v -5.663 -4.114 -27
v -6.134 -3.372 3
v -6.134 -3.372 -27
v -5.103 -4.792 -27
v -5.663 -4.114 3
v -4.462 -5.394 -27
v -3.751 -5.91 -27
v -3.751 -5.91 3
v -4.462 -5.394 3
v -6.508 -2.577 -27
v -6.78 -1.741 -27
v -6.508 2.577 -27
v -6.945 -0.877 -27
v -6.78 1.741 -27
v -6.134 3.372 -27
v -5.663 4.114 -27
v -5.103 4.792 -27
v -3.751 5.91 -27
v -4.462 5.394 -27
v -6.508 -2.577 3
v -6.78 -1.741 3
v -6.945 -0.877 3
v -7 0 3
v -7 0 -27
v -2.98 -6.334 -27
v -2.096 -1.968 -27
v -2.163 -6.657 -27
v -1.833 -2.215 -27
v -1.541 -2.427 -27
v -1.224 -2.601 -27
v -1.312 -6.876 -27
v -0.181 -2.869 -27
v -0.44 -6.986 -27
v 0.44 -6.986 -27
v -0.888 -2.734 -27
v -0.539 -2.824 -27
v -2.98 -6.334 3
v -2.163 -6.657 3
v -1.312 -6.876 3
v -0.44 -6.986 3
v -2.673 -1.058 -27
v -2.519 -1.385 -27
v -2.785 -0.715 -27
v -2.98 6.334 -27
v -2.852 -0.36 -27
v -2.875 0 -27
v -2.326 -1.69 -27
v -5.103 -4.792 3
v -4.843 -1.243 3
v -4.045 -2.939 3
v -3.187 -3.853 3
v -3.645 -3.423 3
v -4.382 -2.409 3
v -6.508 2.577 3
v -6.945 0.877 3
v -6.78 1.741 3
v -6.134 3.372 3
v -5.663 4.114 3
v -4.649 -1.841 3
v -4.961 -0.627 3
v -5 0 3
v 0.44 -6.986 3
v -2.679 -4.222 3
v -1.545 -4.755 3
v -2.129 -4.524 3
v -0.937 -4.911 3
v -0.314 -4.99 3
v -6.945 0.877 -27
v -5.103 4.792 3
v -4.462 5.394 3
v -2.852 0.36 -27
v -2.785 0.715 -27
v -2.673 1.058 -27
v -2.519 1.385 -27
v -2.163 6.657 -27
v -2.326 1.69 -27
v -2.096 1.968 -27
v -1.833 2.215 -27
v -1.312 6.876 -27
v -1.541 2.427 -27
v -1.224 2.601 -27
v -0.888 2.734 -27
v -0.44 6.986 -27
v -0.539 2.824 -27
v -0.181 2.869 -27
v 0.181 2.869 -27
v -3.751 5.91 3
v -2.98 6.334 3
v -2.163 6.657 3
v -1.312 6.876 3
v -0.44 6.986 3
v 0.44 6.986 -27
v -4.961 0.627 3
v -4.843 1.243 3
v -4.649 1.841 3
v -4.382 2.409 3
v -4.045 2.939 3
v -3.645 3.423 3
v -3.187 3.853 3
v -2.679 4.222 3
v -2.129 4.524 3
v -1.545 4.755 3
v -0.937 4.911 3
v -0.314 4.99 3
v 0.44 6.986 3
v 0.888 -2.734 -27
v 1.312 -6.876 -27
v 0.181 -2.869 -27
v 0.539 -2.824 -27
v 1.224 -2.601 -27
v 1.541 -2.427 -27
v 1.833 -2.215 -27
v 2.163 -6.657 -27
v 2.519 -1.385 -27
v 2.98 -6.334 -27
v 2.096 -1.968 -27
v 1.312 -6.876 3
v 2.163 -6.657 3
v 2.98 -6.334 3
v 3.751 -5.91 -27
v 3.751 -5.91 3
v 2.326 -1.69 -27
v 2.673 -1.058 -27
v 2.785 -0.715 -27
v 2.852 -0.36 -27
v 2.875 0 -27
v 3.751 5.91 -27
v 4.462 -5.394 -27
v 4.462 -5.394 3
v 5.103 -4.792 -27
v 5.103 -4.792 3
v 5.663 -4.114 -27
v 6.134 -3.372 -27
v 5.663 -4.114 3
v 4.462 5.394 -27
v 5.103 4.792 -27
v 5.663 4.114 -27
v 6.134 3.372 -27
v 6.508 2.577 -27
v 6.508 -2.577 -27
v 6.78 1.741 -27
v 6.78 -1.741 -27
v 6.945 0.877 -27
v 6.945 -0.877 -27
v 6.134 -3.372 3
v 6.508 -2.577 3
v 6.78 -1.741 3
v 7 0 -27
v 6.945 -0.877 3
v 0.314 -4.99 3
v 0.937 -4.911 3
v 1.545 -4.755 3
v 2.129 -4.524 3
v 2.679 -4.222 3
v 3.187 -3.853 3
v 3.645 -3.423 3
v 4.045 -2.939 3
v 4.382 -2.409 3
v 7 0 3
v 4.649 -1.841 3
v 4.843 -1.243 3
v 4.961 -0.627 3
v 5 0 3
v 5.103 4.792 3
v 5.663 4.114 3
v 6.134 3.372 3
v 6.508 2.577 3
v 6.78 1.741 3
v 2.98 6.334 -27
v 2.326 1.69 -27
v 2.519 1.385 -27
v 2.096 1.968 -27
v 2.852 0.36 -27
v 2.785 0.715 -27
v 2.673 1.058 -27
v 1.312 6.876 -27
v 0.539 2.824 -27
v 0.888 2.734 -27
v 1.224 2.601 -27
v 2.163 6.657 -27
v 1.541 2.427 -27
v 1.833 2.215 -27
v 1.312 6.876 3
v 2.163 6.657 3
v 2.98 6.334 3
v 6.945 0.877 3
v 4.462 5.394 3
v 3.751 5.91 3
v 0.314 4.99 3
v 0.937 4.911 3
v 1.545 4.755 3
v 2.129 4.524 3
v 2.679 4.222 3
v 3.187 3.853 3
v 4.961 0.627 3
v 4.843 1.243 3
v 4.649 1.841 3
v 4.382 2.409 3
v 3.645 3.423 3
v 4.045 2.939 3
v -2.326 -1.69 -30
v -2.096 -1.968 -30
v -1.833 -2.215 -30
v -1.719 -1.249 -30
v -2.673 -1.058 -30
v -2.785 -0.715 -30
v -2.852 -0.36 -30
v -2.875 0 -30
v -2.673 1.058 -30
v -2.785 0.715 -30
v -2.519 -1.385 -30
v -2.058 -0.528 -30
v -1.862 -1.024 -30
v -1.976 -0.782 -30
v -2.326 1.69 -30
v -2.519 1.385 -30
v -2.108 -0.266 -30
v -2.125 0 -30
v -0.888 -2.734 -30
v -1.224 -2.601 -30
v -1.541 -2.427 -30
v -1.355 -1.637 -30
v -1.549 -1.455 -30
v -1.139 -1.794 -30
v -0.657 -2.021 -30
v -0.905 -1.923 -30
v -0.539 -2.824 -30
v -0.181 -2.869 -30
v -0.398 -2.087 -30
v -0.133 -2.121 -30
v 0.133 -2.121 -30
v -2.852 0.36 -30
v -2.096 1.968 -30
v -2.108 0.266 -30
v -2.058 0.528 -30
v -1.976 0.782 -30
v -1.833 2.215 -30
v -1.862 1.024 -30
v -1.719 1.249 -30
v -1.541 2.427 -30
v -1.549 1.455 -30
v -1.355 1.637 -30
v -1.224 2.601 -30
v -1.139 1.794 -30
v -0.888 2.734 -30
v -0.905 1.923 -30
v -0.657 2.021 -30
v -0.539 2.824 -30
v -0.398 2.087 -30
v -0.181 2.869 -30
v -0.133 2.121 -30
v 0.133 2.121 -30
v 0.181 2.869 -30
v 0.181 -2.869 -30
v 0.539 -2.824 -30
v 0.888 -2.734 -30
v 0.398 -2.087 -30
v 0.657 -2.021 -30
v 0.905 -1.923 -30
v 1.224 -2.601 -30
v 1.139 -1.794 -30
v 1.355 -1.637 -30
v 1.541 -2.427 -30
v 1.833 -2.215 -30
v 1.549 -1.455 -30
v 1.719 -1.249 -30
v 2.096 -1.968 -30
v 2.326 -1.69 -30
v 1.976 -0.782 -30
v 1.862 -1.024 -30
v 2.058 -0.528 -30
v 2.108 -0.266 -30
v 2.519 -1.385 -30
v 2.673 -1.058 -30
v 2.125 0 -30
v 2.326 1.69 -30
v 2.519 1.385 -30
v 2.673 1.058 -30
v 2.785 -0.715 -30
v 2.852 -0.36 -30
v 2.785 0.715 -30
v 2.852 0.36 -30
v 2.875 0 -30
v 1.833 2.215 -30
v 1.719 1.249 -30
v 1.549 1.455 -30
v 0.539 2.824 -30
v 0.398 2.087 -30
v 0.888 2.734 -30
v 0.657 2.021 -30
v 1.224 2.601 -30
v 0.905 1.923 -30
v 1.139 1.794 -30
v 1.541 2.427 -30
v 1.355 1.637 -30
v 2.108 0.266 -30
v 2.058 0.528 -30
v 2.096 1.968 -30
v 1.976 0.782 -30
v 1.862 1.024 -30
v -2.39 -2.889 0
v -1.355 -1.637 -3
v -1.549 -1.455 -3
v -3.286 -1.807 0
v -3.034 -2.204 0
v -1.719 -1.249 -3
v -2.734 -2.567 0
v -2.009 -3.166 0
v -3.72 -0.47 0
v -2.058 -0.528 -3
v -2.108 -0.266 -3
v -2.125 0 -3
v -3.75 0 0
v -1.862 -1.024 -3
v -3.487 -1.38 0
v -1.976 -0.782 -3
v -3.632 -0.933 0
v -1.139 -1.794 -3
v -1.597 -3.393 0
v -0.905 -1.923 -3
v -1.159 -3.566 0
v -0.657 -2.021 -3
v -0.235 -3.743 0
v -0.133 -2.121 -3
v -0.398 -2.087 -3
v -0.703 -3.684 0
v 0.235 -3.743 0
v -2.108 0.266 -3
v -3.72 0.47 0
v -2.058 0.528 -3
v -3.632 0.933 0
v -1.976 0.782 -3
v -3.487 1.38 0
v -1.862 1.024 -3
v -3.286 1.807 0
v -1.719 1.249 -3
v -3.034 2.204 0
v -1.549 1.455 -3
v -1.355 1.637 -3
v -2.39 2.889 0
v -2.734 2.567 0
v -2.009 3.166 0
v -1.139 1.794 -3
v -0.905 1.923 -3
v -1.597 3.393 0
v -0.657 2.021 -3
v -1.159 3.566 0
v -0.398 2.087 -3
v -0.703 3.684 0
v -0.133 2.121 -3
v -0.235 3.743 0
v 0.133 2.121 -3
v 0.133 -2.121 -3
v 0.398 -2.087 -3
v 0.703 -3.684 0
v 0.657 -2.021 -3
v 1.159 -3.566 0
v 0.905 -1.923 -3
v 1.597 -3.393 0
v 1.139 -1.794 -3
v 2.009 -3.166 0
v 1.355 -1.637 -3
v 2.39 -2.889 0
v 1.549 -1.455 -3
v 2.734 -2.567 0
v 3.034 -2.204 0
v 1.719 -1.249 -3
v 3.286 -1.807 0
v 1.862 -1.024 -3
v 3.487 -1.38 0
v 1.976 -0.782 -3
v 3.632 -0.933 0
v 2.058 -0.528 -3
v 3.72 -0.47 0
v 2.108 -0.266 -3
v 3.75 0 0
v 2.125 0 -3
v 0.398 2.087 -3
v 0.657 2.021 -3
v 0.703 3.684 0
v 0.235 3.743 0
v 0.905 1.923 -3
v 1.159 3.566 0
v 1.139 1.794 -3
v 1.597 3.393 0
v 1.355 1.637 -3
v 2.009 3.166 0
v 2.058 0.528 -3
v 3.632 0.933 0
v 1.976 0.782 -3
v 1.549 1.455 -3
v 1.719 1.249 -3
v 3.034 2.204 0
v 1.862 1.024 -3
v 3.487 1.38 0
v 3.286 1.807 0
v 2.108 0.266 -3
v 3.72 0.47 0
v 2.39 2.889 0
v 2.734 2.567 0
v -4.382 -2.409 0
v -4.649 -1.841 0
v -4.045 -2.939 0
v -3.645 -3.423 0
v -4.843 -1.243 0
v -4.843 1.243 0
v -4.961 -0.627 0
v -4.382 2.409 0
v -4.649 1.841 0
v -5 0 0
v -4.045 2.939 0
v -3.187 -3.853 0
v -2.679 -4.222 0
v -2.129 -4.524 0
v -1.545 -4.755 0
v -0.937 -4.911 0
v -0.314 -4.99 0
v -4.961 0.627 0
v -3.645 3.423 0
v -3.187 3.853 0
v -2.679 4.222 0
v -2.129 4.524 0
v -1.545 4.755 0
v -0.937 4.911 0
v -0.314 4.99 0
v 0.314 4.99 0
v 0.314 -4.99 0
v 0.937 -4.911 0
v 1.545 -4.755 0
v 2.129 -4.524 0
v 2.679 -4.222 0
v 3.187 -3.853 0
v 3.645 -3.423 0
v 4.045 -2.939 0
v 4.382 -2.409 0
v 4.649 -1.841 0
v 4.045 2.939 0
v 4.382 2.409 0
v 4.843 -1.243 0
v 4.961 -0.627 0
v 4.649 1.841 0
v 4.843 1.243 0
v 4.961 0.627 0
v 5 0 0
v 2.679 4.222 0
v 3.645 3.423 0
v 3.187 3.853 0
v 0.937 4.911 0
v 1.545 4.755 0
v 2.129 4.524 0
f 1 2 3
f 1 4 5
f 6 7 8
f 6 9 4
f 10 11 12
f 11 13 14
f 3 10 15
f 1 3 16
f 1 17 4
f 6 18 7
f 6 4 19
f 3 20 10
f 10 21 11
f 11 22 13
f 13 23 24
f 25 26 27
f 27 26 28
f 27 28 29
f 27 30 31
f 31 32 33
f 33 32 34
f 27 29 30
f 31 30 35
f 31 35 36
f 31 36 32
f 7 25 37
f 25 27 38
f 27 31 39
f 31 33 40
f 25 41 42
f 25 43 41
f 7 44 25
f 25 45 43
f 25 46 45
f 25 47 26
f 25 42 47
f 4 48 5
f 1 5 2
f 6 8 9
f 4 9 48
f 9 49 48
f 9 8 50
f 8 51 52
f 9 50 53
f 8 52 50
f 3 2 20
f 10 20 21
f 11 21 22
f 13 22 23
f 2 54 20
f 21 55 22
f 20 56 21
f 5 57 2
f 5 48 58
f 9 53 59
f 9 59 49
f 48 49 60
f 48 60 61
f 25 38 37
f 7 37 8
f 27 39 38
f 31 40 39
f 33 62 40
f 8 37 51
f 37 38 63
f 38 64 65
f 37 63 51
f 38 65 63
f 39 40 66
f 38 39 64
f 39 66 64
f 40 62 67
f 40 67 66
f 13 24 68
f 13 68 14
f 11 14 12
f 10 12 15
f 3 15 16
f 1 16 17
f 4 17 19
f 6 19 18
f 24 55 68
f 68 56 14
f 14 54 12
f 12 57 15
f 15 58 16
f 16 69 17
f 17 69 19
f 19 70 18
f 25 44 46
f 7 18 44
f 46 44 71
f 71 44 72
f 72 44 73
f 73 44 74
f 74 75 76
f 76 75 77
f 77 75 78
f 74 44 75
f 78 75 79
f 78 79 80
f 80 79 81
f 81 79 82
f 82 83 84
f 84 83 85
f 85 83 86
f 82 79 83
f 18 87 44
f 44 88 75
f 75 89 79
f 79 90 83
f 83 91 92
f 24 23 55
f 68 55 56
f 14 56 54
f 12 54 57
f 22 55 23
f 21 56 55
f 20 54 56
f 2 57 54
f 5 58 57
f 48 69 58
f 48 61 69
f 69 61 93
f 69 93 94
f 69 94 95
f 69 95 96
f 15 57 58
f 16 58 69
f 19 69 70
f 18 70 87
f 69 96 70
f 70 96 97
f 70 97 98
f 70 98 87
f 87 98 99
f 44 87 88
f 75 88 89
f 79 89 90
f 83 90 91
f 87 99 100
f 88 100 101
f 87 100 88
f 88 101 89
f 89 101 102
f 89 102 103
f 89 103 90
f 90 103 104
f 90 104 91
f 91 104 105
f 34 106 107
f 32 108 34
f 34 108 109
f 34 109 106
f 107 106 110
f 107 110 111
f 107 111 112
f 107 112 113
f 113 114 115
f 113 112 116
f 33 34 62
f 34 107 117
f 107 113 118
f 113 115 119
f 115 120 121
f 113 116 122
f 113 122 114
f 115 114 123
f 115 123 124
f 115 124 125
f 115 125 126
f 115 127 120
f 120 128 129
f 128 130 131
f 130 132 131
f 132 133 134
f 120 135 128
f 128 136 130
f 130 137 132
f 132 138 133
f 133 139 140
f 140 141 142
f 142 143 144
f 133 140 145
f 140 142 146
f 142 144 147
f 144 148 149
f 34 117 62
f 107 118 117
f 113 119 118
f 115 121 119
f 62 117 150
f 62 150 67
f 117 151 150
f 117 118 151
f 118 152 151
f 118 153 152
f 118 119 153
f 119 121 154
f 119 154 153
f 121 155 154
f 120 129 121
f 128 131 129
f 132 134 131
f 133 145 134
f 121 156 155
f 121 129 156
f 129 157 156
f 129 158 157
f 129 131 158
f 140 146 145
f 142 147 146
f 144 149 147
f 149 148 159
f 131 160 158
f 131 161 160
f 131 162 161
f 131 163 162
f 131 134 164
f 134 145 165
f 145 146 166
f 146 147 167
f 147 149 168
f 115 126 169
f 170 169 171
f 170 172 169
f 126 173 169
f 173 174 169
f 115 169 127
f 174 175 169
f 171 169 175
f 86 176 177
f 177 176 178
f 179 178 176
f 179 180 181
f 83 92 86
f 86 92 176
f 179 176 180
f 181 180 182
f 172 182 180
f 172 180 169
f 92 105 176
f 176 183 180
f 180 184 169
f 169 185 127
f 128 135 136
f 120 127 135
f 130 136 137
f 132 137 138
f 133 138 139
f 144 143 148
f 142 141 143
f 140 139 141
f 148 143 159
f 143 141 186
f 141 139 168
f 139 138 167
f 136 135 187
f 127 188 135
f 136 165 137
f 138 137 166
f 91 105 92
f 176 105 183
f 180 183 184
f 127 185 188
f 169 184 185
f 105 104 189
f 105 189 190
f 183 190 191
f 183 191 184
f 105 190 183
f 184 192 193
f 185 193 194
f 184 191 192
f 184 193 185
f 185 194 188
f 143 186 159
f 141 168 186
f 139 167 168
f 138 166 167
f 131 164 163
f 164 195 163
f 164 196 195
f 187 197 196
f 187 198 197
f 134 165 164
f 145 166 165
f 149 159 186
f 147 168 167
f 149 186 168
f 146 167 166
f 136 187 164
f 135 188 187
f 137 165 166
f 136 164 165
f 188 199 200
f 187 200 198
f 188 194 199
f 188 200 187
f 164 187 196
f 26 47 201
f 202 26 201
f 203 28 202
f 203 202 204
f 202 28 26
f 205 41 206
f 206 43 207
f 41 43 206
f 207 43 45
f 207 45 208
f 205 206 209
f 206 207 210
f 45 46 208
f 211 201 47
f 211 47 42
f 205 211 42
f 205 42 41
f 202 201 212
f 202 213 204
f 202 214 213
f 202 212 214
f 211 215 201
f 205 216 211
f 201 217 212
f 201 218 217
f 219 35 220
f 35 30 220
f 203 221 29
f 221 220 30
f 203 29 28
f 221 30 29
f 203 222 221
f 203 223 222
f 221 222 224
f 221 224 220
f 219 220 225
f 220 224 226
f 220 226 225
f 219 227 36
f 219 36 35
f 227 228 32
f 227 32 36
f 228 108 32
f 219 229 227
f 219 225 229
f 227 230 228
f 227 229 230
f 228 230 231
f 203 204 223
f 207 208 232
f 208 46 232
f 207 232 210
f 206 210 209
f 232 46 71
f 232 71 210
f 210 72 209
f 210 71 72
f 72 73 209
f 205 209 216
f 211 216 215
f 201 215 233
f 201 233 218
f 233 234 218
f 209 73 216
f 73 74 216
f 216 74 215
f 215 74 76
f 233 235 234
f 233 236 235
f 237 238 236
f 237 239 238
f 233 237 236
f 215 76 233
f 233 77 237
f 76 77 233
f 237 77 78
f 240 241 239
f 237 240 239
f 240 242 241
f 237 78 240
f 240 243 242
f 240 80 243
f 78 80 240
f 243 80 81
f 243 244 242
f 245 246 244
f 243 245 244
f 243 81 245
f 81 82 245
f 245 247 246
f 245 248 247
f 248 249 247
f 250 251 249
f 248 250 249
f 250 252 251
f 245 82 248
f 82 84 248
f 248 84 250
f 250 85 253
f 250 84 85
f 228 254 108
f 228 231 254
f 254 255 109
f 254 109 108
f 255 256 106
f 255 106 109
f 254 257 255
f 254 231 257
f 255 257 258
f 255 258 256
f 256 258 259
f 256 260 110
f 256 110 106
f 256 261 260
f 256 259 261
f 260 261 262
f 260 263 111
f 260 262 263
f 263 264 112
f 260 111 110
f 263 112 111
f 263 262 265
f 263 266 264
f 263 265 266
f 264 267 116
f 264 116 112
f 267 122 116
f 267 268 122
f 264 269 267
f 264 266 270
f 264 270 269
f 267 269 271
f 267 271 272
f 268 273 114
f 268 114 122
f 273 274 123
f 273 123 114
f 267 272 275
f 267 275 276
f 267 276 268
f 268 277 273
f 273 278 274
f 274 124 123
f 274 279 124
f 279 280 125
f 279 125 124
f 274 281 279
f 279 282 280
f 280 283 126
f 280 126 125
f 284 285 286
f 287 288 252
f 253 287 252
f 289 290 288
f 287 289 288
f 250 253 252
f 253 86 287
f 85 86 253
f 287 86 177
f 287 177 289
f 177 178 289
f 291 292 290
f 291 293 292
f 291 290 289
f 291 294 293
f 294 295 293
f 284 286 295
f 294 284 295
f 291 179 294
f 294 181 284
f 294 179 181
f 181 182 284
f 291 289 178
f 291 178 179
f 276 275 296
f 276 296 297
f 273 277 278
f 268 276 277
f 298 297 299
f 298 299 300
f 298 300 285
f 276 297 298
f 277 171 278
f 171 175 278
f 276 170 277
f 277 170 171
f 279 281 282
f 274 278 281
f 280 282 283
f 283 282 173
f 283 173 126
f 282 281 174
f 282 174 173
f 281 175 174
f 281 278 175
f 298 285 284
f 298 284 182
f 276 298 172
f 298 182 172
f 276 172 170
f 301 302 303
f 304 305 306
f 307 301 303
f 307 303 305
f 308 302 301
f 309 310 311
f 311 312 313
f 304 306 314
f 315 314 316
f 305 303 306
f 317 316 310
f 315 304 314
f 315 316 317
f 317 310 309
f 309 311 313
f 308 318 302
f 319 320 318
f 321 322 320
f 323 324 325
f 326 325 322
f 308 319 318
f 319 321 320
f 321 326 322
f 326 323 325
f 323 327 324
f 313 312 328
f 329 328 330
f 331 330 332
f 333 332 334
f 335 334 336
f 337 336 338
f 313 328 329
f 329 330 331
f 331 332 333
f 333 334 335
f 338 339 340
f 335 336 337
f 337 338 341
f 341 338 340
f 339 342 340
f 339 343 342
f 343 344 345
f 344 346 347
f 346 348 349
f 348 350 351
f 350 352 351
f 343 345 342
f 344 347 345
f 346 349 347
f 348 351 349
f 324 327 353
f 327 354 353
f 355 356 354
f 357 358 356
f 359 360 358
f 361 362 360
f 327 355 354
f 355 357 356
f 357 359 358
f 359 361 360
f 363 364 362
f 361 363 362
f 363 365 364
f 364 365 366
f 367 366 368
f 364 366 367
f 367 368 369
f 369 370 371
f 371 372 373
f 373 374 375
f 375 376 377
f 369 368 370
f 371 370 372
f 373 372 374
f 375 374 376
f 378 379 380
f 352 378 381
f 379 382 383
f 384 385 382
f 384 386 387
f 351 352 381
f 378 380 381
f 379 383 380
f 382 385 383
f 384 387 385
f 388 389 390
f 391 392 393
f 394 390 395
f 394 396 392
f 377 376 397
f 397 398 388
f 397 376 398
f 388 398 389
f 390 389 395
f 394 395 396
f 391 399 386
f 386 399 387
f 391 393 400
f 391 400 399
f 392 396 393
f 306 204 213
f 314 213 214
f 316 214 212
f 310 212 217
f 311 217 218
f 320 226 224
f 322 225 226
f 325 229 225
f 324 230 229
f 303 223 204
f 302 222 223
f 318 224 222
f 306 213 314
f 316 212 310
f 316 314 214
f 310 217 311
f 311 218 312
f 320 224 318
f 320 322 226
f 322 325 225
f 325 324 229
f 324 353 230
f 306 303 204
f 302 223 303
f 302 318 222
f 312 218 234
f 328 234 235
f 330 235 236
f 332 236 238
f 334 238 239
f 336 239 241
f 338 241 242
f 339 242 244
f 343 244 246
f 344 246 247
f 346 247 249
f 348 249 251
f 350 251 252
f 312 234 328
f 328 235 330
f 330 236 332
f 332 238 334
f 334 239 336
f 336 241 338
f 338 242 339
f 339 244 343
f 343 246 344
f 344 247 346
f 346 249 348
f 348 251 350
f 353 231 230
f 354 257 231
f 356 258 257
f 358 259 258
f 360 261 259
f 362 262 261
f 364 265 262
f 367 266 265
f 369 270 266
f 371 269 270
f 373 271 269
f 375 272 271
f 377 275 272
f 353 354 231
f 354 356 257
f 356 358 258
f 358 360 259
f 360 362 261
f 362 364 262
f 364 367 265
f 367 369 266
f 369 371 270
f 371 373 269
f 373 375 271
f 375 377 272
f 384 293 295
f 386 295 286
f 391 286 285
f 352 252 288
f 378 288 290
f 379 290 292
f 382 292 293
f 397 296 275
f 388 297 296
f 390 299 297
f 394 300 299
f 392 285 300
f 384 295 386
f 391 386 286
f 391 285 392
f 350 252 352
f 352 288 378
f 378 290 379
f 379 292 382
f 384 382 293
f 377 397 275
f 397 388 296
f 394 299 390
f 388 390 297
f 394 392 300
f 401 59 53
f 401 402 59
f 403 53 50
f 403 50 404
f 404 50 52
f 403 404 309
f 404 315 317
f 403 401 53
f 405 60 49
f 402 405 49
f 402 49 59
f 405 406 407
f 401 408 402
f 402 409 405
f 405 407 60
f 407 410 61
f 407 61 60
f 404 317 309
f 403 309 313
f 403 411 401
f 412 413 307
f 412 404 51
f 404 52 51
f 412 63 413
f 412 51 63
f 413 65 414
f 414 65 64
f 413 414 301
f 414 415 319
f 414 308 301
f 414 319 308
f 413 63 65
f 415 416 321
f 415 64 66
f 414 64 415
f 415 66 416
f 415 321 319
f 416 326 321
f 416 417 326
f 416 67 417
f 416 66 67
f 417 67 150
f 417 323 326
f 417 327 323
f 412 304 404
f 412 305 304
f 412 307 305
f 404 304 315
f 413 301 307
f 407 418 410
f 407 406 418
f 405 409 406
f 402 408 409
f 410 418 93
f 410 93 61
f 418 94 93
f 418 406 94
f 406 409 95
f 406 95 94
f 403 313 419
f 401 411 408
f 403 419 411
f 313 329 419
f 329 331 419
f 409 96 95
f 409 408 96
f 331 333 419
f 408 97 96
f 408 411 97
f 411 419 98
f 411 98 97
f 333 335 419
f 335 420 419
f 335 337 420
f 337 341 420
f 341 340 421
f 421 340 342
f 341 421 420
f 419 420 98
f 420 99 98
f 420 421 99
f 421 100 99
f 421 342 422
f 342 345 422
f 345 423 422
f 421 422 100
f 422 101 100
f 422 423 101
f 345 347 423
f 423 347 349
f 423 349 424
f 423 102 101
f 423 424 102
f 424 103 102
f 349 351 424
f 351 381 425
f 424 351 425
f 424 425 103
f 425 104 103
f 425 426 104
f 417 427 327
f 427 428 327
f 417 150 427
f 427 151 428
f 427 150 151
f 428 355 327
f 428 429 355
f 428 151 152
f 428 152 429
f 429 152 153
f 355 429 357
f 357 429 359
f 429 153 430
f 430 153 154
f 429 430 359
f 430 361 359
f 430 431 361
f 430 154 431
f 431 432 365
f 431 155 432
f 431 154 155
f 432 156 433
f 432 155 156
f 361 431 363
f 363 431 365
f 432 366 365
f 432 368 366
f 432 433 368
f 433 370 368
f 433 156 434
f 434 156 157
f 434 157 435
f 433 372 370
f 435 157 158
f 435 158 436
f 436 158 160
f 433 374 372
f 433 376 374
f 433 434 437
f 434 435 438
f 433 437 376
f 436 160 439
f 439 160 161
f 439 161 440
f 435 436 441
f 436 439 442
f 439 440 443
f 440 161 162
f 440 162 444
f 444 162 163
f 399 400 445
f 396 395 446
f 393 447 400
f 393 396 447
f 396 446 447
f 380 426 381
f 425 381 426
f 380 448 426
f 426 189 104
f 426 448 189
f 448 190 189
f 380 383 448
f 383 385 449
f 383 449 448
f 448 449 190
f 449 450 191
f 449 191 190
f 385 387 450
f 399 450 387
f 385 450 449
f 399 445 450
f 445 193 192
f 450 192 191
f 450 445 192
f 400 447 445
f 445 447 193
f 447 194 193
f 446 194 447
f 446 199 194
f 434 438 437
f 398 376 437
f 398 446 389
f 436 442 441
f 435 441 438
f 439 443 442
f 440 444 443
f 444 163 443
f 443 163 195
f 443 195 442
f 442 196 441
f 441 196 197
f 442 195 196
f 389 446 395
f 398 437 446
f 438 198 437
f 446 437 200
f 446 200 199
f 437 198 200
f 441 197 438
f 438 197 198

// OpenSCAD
$fn = 50;

difference() {
	union() {
		translate(v = [0, 0, -27.0]) {
			cylinder(h = 30, r = 7.0);
		}
		#translate(v = [0, 0, -30.0]) {
			cylinder(h = 30, r = 2.875);
		}
	}
	union() {
		translate(v = [0, 0, 0]) {
			rotate(a = [0, 0, 0]) {
				difference() {
					union() {
						translate(v = [0, 0, -30.0]) {
							cylinder(h = 30, r = 2.0);
						}
						translate(v = [0, 0, -3]) {
							cylinder(h = 3, r1 = 2.125, r2 = 3.75);
						}
						translate(v = [0, 0, -30.0]) {
							cylinder(h = 30, r = 2.125);
						}
						translate(v = [0, 0, -30.0]) {
							cylinder(h = 30, r = 2.0);
						}
					}
					union();
				}
			}
		}
		#cylinder(h = 3, r = 5.0);
	}
}
